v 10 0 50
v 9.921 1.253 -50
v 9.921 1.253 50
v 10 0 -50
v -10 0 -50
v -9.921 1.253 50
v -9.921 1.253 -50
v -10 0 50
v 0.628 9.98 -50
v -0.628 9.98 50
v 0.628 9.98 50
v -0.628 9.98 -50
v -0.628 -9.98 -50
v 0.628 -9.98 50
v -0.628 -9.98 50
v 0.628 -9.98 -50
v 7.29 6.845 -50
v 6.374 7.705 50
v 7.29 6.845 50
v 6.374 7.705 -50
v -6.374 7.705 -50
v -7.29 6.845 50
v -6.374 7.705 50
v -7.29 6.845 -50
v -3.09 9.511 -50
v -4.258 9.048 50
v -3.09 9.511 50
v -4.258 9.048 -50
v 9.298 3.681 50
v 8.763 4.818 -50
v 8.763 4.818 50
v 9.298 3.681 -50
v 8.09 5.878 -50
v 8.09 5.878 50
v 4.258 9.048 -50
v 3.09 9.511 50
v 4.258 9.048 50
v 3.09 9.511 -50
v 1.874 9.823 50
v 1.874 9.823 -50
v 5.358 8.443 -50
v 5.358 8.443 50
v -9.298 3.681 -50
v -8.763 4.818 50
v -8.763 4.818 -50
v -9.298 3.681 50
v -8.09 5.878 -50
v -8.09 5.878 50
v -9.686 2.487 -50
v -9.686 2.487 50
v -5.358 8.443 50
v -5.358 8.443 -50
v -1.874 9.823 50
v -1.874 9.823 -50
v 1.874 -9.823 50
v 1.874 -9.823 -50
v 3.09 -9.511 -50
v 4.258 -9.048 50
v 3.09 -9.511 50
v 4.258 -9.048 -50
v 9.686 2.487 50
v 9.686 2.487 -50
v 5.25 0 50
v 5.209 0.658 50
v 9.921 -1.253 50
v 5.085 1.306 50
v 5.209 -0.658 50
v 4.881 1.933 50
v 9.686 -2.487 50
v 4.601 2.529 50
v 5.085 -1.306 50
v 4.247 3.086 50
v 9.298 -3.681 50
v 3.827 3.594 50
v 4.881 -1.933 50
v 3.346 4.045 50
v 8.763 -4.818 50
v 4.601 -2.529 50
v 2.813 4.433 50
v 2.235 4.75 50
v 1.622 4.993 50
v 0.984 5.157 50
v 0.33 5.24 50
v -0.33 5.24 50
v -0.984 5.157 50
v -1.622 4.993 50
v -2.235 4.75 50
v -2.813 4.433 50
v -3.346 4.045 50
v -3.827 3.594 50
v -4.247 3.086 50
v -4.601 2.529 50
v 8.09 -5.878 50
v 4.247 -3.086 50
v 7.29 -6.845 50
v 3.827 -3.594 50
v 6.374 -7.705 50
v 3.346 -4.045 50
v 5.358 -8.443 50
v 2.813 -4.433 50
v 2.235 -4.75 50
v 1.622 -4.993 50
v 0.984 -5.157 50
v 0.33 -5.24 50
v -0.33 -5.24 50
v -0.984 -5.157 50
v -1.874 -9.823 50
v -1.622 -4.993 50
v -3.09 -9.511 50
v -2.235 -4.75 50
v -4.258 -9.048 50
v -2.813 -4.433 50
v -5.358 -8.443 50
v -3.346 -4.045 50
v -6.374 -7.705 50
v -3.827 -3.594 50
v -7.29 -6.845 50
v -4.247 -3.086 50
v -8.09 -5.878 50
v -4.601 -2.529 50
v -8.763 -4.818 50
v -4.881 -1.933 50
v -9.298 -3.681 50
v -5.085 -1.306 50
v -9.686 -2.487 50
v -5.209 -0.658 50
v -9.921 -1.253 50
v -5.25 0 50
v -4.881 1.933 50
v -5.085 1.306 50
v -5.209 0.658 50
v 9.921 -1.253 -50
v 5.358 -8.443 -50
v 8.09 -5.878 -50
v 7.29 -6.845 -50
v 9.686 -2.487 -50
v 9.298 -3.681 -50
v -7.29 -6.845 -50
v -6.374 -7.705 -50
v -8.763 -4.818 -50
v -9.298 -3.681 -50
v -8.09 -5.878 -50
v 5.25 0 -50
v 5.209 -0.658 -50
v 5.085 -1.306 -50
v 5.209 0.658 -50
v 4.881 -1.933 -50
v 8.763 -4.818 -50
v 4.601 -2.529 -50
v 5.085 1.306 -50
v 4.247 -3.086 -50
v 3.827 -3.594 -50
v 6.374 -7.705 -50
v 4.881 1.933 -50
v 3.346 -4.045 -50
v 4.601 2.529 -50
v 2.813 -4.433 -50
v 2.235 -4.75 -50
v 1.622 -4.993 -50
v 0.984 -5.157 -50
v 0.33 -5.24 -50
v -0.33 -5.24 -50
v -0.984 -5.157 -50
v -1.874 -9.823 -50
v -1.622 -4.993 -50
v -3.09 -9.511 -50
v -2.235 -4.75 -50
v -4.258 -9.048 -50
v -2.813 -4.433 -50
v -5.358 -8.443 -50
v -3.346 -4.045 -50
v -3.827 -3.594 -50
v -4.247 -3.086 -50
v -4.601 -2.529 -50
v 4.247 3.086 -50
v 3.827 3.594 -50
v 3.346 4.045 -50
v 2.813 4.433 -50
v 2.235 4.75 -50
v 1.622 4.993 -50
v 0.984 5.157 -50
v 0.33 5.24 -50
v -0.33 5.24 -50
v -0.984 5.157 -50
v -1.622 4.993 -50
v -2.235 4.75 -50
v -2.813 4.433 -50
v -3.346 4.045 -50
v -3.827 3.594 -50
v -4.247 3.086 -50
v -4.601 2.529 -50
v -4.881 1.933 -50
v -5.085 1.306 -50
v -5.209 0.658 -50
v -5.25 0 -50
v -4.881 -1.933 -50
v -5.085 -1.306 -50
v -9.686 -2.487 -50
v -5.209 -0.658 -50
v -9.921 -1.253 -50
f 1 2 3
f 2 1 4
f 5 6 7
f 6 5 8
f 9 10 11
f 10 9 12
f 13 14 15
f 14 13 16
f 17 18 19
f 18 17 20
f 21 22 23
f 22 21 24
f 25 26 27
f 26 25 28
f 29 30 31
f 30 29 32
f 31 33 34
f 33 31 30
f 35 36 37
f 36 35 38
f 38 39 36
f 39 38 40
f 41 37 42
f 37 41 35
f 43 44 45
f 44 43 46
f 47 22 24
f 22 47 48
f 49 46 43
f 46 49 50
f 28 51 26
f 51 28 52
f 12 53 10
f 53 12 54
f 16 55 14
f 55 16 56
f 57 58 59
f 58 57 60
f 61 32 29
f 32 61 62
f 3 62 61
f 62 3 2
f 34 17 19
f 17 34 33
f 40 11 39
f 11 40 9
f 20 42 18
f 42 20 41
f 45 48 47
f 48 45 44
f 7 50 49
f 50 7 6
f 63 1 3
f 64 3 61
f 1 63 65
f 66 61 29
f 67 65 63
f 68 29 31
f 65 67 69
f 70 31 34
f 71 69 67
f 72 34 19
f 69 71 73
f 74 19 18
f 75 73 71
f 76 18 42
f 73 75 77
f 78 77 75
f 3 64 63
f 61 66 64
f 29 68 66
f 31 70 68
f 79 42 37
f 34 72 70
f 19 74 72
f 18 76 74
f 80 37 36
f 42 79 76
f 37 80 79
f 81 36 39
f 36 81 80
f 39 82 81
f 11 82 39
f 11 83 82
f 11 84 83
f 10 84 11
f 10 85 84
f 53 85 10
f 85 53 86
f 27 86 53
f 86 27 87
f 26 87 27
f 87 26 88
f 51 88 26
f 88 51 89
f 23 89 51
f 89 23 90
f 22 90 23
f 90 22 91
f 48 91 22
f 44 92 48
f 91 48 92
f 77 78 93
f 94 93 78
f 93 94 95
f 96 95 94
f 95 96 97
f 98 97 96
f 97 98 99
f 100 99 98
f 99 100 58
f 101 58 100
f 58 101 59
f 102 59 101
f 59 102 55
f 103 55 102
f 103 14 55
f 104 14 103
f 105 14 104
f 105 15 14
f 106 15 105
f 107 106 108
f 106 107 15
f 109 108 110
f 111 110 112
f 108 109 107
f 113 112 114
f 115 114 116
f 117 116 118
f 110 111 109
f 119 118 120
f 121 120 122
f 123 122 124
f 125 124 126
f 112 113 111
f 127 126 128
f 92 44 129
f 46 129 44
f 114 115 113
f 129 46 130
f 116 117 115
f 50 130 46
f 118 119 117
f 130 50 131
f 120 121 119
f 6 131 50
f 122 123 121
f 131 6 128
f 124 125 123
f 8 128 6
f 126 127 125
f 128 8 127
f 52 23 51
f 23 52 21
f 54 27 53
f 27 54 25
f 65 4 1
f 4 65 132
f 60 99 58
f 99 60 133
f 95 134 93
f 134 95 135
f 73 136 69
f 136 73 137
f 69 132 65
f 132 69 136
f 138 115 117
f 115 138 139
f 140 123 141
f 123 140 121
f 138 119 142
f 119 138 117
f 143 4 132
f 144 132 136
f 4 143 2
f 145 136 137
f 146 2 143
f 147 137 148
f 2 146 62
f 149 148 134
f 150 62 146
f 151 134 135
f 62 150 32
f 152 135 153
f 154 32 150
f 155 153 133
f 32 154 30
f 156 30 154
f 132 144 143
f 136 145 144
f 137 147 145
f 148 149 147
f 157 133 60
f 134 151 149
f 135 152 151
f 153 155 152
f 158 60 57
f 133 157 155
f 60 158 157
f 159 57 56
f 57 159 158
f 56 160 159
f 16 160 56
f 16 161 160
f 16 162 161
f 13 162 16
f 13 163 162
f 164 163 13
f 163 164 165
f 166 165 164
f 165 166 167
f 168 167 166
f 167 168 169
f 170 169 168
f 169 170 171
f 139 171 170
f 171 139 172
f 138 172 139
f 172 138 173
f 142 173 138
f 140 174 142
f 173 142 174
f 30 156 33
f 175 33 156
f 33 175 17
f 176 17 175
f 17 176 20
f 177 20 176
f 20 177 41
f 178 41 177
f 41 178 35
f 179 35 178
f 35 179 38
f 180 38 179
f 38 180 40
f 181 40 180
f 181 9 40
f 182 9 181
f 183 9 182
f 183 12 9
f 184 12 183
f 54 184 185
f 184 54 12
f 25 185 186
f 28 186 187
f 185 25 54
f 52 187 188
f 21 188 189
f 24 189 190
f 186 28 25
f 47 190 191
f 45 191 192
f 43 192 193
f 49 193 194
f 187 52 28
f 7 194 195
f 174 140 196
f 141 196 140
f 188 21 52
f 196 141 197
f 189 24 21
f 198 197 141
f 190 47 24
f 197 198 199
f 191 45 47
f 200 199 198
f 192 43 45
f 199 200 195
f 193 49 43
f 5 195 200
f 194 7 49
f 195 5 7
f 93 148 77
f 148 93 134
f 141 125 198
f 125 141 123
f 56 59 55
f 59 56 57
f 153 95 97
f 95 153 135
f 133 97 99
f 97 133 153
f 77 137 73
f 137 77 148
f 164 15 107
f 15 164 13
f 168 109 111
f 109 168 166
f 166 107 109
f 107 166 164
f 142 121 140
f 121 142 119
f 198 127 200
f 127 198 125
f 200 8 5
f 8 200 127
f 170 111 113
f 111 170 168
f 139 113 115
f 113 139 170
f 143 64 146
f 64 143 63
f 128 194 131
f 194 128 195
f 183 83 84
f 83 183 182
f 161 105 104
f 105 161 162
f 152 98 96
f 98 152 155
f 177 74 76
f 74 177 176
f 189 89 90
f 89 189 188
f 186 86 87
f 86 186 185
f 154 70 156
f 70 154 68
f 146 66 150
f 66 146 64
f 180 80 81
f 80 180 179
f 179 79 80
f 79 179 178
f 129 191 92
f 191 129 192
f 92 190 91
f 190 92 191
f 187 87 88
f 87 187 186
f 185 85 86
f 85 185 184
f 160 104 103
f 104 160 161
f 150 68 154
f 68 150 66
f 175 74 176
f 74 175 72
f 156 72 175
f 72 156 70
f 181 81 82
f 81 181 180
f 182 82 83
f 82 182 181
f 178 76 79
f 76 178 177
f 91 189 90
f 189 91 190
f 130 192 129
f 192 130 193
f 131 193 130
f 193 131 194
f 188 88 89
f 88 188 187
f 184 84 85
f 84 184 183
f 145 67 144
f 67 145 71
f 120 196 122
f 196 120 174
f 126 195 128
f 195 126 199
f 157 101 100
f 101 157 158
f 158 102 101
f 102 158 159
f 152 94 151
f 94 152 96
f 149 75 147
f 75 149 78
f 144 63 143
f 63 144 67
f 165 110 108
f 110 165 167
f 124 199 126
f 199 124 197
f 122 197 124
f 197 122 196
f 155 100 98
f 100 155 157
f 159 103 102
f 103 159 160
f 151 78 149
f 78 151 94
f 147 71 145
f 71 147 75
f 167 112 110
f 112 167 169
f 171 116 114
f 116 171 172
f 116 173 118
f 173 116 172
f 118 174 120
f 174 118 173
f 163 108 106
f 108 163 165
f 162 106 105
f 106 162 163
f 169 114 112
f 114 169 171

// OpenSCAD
$fn = 50;


difference() {
	union() {
		translate(v = [0, 0, -50.0000000000]) {
			cylinder(h = 100, r = 10.0000000000);
		}
	}
	union() {
		translate(v = [0, 0, -100.0000000000]) {
			cylinder(h = 200, r = 5.2500000000);
		}
	}
}
